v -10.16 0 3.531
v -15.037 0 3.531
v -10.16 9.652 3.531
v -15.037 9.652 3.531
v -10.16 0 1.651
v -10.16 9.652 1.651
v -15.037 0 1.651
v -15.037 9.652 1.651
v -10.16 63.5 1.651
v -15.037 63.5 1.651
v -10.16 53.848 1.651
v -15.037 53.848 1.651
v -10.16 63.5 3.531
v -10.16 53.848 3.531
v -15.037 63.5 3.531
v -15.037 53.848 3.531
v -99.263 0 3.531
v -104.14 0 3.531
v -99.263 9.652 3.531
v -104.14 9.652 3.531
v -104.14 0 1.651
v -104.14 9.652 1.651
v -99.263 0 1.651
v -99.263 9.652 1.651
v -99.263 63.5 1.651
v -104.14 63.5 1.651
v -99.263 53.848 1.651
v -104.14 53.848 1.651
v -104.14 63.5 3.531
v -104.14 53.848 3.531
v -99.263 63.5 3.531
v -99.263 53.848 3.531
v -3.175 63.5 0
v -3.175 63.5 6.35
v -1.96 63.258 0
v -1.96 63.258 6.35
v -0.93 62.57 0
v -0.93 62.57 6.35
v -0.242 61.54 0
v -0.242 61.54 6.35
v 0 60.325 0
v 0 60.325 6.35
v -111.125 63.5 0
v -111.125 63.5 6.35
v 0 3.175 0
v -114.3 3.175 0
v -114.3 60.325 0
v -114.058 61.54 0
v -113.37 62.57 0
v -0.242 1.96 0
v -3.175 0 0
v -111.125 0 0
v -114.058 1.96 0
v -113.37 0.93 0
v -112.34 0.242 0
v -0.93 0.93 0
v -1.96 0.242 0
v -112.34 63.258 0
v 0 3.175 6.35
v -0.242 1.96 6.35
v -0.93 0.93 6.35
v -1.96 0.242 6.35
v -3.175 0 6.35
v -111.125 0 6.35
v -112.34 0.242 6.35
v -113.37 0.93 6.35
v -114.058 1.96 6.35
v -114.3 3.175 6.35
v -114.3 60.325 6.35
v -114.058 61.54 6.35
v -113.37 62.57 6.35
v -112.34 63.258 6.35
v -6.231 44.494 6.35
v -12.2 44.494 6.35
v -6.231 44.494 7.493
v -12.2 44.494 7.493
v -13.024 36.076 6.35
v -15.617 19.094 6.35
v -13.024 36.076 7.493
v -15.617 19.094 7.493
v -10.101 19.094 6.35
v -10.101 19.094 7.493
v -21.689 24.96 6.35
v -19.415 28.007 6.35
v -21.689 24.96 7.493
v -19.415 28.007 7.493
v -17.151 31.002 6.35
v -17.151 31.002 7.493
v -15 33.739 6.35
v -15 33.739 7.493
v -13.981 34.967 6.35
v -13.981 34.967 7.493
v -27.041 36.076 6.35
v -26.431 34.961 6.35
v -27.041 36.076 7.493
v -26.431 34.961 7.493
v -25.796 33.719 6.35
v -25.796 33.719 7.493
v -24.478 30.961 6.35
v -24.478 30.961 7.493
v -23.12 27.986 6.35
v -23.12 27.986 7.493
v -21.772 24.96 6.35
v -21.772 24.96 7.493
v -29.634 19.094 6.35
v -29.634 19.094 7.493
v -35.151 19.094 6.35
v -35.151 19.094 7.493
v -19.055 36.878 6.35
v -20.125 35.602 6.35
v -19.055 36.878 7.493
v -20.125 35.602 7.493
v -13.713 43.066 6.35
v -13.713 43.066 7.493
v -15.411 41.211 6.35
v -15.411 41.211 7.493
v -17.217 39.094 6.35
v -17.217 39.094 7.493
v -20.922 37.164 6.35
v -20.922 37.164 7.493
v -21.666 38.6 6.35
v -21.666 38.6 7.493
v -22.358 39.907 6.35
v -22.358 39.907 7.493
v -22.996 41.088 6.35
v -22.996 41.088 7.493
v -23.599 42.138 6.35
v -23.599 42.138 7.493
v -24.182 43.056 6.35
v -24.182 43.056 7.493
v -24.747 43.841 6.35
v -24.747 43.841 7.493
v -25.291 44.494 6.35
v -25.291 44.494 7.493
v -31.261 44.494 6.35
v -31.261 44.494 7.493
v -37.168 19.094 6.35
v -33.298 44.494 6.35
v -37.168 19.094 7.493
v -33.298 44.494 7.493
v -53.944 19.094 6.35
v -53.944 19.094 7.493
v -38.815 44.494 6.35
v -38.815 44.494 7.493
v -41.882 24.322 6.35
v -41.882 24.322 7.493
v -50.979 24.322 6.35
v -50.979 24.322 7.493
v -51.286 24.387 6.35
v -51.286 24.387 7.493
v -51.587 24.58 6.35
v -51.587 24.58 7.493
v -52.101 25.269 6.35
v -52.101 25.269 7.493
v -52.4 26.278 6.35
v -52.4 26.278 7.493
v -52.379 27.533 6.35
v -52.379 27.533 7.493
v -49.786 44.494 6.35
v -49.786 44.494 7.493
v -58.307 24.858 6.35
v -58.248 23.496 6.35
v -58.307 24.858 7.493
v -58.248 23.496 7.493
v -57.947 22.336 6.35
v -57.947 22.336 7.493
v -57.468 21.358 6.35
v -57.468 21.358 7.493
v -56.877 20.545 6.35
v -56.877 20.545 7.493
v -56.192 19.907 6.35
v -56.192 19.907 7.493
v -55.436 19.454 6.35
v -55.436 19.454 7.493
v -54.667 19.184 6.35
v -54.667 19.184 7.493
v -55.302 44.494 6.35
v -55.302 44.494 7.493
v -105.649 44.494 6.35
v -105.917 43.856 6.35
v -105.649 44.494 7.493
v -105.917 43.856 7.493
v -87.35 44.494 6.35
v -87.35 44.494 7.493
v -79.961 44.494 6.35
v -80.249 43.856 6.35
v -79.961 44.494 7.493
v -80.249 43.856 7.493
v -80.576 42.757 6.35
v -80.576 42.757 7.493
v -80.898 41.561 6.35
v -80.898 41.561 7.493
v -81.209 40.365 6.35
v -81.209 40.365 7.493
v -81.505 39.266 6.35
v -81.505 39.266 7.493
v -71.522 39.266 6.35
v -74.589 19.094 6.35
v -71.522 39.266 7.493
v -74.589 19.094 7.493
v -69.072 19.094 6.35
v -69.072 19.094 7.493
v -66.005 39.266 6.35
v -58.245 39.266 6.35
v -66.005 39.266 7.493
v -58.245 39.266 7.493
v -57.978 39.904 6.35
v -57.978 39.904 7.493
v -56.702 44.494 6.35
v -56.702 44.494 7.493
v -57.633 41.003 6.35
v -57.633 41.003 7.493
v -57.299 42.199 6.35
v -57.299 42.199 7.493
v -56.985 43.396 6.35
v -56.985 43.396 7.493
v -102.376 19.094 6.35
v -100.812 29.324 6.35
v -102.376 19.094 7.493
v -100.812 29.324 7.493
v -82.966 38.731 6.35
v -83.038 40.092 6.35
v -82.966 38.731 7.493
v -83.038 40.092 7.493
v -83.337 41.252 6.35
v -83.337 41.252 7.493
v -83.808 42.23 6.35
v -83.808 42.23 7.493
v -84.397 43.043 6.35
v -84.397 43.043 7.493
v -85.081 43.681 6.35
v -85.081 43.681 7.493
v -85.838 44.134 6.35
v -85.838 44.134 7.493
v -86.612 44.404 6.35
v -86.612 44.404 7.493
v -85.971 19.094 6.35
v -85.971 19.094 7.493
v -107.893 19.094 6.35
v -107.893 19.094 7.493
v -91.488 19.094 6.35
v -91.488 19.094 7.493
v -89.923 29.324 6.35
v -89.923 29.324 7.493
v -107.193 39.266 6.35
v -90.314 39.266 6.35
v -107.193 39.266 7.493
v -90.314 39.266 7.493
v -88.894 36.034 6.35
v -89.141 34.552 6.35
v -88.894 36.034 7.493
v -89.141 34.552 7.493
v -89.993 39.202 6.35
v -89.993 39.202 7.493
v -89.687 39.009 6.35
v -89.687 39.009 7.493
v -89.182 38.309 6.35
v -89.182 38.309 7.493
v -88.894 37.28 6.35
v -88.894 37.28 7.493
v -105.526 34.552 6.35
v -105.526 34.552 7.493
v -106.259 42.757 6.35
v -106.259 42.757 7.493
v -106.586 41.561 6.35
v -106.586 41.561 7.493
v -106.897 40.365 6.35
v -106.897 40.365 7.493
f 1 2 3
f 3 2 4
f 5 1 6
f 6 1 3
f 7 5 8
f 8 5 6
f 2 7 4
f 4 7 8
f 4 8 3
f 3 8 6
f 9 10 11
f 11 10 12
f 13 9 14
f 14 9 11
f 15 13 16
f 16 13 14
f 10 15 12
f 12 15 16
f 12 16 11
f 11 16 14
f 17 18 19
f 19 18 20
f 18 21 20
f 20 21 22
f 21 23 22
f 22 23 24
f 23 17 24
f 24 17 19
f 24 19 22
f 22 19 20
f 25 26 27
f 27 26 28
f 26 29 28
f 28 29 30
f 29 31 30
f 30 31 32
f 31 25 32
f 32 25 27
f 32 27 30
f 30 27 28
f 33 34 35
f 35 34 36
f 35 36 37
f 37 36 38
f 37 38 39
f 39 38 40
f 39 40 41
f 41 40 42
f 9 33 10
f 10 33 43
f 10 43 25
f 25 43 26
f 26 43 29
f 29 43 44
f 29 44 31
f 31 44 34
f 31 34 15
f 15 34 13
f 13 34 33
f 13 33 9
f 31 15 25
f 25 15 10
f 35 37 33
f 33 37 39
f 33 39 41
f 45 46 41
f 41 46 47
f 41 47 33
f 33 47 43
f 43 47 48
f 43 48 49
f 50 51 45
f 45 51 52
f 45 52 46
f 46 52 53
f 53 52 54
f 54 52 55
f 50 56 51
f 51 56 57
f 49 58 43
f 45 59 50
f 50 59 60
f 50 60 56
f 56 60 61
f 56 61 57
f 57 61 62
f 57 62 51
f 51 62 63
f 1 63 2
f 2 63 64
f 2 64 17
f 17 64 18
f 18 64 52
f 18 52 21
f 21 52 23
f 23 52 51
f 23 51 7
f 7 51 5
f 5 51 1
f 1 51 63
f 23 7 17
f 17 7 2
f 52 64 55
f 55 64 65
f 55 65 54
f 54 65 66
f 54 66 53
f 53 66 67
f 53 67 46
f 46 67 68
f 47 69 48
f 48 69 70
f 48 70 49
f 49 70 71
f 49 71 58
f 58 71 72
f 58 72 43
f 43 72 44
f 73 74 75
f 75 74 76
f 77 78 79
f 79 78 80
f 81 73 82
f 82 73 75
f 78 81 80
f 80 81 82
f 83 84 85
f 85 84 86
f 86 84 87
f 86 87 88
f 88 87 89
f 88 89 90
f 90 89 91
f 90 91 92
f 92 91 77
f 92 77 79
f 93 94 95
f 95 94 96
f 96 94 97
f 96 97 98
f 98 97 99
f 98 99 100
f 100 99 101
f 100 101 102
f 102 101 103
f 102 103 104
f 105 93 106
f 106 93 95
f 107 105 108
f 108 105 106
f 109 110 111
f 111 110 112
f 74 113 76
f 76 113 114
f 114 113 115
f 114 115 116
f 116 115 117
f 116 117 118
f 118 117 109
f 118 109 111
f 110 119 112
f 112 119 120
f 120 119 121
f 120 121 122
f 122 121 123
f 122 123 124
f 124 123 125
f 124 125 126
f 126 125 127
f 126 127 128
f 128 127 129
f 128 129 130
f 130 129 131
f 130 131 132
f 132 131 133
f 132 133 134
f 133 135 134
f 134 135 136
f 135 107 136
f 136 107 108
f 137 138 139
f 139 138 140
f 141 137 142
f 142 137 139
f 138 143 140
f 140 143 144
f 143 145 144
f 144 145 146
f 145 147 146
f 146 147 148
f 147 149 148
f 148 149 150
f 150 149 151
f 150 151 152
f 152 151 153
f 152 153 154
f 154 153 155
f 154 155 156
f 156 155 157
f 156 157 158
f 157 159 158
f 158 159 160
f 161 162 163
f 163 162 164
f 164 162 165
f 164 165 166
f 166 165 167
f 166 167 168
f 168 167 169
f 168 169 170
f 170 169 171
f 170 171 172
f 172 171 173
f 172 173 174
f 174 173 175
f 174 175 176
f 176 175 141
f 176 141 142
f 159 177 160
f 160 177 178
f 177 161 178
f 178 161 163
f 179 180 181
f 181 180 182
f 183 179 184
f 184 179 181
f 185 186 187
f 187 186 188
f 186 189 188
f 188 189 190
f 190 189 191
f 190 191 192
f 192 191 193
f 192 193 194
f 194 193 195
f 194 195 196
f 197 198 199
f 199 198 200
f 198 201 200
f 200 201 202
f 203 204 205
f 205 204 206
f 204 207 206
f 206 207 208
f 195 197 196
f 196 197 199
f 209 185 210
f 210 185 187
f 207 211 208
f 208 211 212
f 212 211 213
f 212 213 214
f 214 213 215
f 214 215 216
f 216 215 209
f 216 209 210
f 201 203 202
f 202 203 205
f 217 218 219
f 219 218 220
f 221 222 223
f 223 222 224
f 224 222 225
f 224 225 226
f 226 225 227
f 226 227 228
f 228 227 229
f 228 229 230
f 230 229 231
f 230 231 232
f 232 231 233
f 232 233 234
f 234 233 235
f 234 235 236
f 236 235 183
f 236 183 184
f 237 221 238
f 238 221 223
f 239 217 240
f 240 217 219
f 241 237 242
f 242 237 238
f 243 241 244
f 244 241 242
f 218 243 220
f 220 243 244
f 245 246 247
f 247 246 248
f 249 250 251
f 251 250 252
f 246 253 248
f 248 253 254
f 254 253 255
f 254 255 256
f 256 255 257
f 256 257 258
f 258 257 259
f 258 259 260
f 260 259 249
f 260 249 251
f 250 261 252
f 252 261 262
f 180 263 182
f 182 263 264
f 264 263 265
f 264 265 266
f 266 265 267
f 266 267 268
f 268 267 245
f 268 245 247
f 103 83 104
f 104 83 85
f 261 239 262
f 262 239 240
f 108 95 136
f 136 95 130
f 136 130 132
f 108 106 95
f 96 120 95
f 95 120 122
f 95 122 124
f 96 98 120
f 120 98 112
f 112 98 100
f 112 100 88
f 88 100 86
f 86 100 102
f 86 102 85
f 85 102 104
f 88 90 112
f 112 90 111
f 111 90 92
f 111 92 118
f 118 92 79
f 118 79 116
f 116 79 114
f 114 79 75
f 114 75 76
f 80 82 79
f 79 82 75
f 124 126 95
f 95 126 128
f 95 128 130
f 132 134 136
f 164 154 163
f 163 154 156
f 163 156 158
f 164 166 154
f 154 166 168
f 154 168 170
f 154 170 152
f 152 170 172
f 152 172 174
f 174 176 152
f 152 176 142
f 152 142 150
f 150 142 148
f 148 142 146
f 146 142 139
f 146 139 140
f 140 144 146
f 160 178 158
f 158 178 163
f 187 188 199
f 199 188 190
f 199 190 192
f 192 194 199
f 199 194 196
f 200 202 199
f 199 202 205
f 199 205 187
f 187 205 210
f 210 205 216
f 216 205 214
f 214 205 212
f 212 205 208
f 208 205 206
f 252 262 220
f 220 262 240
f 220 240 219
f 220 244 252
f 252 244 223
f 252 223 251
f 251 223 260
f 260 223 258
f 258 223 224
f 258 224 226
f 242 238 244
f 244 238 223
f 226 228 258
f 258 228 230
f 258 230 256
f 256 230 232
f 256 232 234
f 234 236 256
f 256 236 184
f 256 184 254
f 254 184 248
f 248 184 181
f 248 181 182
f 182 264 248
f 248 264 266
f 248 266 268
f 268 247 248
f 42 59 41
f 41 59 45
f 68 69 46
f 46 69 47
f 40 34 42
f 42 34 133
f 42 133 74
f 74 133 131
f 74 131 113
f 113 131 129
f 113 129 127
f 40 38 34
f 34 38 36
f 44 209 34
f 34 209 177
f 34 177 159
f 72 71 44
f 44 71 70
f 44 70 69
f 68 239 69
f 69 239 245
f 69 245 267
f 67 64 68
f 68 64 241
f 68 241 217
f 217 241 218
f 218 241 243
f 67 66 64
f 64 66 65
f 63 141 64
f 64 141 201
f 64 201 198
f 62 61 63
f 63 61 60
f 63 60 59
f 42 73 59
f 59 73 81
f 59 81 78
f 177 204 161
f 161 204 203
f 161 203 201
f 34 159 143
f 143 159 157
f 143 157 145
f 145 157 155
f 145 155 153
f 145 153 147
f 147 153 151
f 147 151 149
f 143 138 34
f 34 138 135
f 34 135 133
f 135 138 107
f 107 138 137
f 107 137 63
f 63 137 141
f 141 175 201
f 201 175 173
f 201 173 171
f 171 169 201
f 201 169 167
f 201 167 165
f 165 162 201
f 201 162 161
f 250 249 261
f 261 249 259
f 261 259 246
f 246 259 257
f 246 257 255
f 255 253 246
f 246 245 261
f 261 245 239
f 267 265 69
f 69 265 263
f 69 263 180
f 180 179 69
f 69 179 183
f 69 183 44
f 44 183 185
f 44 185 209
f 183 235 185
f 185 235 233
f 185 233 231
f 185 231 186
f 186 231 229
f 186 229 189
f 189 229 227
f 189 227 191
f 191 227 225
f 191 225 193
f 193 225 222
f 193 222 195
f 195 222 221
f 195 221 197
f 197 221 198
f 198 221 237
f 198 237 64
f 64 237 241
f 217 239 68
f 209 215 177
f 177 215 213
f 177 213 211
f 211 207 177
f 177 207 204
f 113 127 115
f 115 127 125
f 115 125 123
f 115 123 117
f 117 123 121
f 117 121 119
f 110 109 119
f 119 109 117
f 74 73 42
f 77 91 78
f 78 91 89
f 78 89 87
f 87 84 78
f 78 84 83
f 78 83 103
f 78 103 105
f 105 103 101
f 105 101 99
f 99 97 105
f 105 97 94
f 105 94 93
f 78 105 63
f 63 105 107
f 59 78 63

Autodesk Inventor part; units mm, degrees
ref_plane "YZ Plane" through (0, 0, 0) normal (1, 0, 0) x (0, 1, 0)
ref_plane "XZ Plane" through (0, 0, 0) normal (0, 1, 0) x (-1, 0, 0)
sketch "Sketch1" plane through (0, 0, 0) normal (0, 0, 1) x (1, 0, 0)
  line L0 (0, 0) -> (-114.3, 0)
  line L1 (-114.3, 0) -> (-114.3, 63.5)
  line L2 (-114.3, 63.5) -> (0, 63.5)
  line L3 (0, 63.5) -> (0, 0)
  dimension "d7" = 114.3
  dimension "d8" = 63.5
extrude "Extrusion1" add sketch "Sketch1" along normal blind 6.35
sketch "Sketch2" plane through (0, 0, 6.35) normal (0, 0, 1) x (1, 0, 0)
  line L0 (0, 0) -> (0, 63.5) projected
  line L1 (-114.3, 63.5) -> (-114.3, 0) projected
  line L2 (-114.3, 0) -> (0, 0) projected
  line L3 (0, 63.5) -> (-114.3, 63.5) projected
sketch "Sketch3" plane through (0, 0, 6.35) normal (0, 0, 1) x (1, 0, 0)
  line L0 (-110.6716, 35.2666) -> (-52.0005, 35.2666) construction
  line L1 (-52.0005, 35.2666) -> (-52.0005, 28.3217) construction
  line L2 (-52.0005, 28.3217) -> (-110.6716, 28.3217) construction
  line L3 (-110.6716, 28.3217) -> (-110.6716, 35.2666) construction
  line L4 (-114.3, 63.5) -> (-114.3, 0) projected
  line L5 (-107.8928, 19.0941) -> (-105.5257, 34.5523)
  line L6 (-105.5257, 34.5523) -> (-89.1412, 34.5523)
  line L7 (-89.1412, 34.5523) -> (-88.8942, 36.0343)
  spline S0 degree 2 poles (-88.8942, 36.0343) (-88.8119, 36.693) (-88.9766, 37.8663) (-89.3882, 38.7514) (-89.9852, 39.2659) (-90.3145, 39.2659) knots 0 0 0 1 2 3 4 4 4
  line L8 (-90.3145, 39.2659) -> (-107.1929, 39.2659)
  spline S1 degree 2 poles (-107.1929, 39.2659) (-106.9048, 40.3157) (-106.2667, 42.8063) (-105.9168, 43.8561) knots 0 0 0 1 2 2 2
  line L9 (-105.9168, 43.8561) -> (-105.6492, 44.4941)
  line L10 (-105.6492, 44.4941) -> (-87.3505, 44.4941)
  spline S2 degree 2 poles (-87.3505, 44.4941) (-86.6301, 44.4941) (-85.0451, 43.7737) (-83.7484, 42.3123) (-82.925, 40.1922) (-82.9662, 38.7308) knots 0 0 0 1 2 3 4 4 4
  line L11 (-82.9662, 38.7308) -> (-85.9714, 19.0941)
  line L12 (-85.9714, 19.0941) -> (-91.4878, 19.0941)
  line L13 (-91.4878, 19.0941) -> (-89.9234, 29.3241)
  line L14 (-89.9234, 29.3241) -> (-100.8121, 29.3241)
  line L15 (-100.8121, 29.3241) -> (-102.3764, 19.0941)
  line L16 (-102.3764, 19.0941) -> (-107.8928, 19.0941)
  spline S3 degree 2 poles (-81.5048, 39.2659) (-81.2166, 40.3157) (-80.5785, 42.8063) (-80.2492, 43.8561) knots 0 0 0 1 2 2 2
  line L17 (-80.2492, 43.8561) -> (-79.961, 44.4941)
  line L18 (-79.961, 44.4941) -> (-56.7017, 44.4941)
  spline S4 degree 2 poles (-56.7017, 44.4941) (-56.9693, 43.4444) (-57.628, 40.9538) (-57.9779, 39.904) knots 0 0 0 1 2 2 2
  line L19 (-57.9779, 39.904) -> (-58.2455, 39.2659)
  line L20 (-58.2455, 39.2659) -> (-66.0054, 39.2659)
  line L21 (-66.0054, 39.2659) -> (-69.0724, 19.0941)
  line L22 (-69.0724, 19.0941) -> (-74.5887, 19.0941)
  line L23 (-74.5887, 19.0941) -> (-71.5218, 39.2659)
  line L24 (-71.5218, 39.2659) -> (-81.5048, 39.2659)
  spline S5 degree 2 poles (-58.3072, 24.8575) (-58.369, 23.3961) (-57.525, 21.276) (-56.2283, 19.8146) (-54.6434, 19.0941) (-53.9435, 19.0941) knots 0 0 0 1 2 3 4 4 4
  line L25 (-53.9435, 19.0941) -> (-37.168, 19.0941)
  line L26 (-37.168, 19.0941) -> (-33.2983, 44.4941)
  line L27 (-33.2983, 44.4941) -> (-38.8147, 44.4941)
  line L28 (-38.8147, 44.4941) -> (-41.8816, 24.3223)
  line L29 (-41.8816, 24.3223) -> (-50.9795, 24.3223)
  spline S6 degree 2 poles (-50.9795, 24.3223) (-51.2882, 24.3223) (-51.8852, 24.8369) (-52.3174, 25.7014) (-52.4821, 26.8541) (-52.3792, 27.5334) knots 0 0 0 1 2 3 4 4 4
  line L30 (-52.3792, 27.5334) -> (-49.7857, 44.4941)
  line L31 (-49.7857, 44.4941) -> (-55.302, 44.4941)
  line L32 (-55.302, 44.4941) -> (-58.3072, 24.8575)
  line L33 (-31.2605, 44.4941) -> (-35.1508, 19.0941)
  line L34 (-35.1508, 19.0941) -> (-29.6344, 19.0941)
  line L35 (-29.6344, 19.0941) -> (-27.0409, 36.0755)
  spline S7 degree 2 poles (-27.0409, 36.0755) (-26.444, 35.0257) (-25.1472, 32.4116) (-23.8093, 29.5094) (-22.4302, 26.463) (-21.7716, 24.9604) knots 0 0 0 1 2 3 4 4 4
  line L36 (-21.7716, 24.9604) -> (-21.6892, 24.9604)
  spline S8 degree 2 poles (-21.6892, 24.9604) (-20.5777, 26.463) (-18.2518, 29.5505) (-16.0493, 32.4528) (-13.9498, 35.0257) (-13.0236, 36.0755) knots 0 0 0 1 2 3 4 4 4
  line L37 (-13.0236, 36.0755) -> (-15.6171, 19.0941)
  line L38 (-15.6171, 19.0941) -> (-10.1007, 19.0941)
  line L39 (-10.1007, 19.0941) -> (-6.231, 44.4941)
  line L40 (-6.231, 44.4941) -> (-12.2002, 44.4941)
  spline S9 degree 2 poles (-12.2002, 44.4941) (-13.6205, 43.2797) (-17.202, 39.1424) (-19.0545, 36.8783) knots 0 0 0 1 2 2 2
  line L41 (-19.0545, 36.8783) -> (-20.1249, 35.6021)
  spline S10 degree 2 poles (-20.1249, 35.6021) (-21.7716, 38.8543) (-24.221, 43.3209) (-25.2913, 44.4941) knots 0 0 0 1 2 2 2
  line L42 (-25.2913, 44.4941) -> (-31.2605, 44.4941)
  point P0 (0, 0)
extrude "Extrusion2" add sketch "Sketch3" along normal blind 1.143
fillet "Fillet2" radius 3.175 4 edges at (-114.3, 63.5, 3.175) (-114.3, 0, 3.175) (0, 0, 3.175) (0, 63.5, 3.175)
sketch "Sketch4" plane through (0, 0, 6.35) normal (0, 0, 1) x (1, 0, 0)
  point P0 (0, 0)
sketch "Sketch5" plane through (0, 0, 6.35) normal (0, 0, 1) x (1, 0, 0)
  point P0 (0, 0)
sketch "Sketch6" plane through (0, 0, 6.35) normal (0, 0, 1) x (1, 0, 0)
  point P0 (0, 0)
ref_plane "Work Plane1" through (-57.15, 3.175, 0) normal (1, 0, 0) x (0, 0, -1)
sketch "Sketch7" plane through (-111.125, 63.5, 0) normal (0, 1, 0) x (1, 0, 0)
  line L0 (107.95, -6.35) -> (0, -6.35) projected
  line L1 (107.95, 0) -> (0, 0) projected
  line L2 (0, -6.35) -> (0, -3.175)
  line L3 (0, -6.35) -> (0, 0) projected
  line L4 (0, 0) -> (0, -6.35) projected
  line L5 (0, -6.35) -> (0, -3.5306)
  line L6 (0, -3.5306) -> (6.985, -3.5306)
  line L7 (6.985, -3.5306) -> (11.8618, -3.5306)
  line L8 (11.8618, -3.5306) -> (11.8618, -1.651)
  line L9 (11.8618, -1.651) -> (6.985, -1.651)
  line L10 (6.985, -1.651) -> (6.985, -3.5306)
  point P0 (111.125, 0)
  dimension "d24" = 4.8768
  dimension "d25" = 1.8796
  dimension "d26" = 2.8194
  dimension "d27" = 6.985
extrude "Extrusion3" cut sketch "Sketch7" against normal blind 9.652
sketch "Sketch8" plane through (-111.125, 0, 0) normal (0, -1, 0) x (1, 0, 0)
  line L0 (0, 0) -> (0, 6.35) projected
  line L1 (6.985, 3.5306) -> (6.985, 1.651) projected
  line L2 (11.8618, 1.651) -> (11.8618, 3.5306) projected
  line L3 (6.985, 1.651) -> (11.8618, 1.651)
  line L4 (11.8618, 1.651) -> (11.8618, 3.5306)
  line L5 (11.8618, 3.5306) -> (6.985, 3.5306)
  line L6 (6.985, 3.5306) -> (6.985, 1.651)
  line L7 (0, 0) -> (107.95, 0) projected
  point P0 (111.125, 0)
extrude "Extrusion4" cut sketch "Sketch8" against normal blind 9.652
mirror "Mirror1" about plane through (-57.15, 3.175, 0) normal (1, 0, 0) of "Extrusion3"
mirror "Mirror2" about plane through (-57.15, 3.175, 0) normal (1, 0, 0) of "Extrusion4"
properties part number "custom plate"
